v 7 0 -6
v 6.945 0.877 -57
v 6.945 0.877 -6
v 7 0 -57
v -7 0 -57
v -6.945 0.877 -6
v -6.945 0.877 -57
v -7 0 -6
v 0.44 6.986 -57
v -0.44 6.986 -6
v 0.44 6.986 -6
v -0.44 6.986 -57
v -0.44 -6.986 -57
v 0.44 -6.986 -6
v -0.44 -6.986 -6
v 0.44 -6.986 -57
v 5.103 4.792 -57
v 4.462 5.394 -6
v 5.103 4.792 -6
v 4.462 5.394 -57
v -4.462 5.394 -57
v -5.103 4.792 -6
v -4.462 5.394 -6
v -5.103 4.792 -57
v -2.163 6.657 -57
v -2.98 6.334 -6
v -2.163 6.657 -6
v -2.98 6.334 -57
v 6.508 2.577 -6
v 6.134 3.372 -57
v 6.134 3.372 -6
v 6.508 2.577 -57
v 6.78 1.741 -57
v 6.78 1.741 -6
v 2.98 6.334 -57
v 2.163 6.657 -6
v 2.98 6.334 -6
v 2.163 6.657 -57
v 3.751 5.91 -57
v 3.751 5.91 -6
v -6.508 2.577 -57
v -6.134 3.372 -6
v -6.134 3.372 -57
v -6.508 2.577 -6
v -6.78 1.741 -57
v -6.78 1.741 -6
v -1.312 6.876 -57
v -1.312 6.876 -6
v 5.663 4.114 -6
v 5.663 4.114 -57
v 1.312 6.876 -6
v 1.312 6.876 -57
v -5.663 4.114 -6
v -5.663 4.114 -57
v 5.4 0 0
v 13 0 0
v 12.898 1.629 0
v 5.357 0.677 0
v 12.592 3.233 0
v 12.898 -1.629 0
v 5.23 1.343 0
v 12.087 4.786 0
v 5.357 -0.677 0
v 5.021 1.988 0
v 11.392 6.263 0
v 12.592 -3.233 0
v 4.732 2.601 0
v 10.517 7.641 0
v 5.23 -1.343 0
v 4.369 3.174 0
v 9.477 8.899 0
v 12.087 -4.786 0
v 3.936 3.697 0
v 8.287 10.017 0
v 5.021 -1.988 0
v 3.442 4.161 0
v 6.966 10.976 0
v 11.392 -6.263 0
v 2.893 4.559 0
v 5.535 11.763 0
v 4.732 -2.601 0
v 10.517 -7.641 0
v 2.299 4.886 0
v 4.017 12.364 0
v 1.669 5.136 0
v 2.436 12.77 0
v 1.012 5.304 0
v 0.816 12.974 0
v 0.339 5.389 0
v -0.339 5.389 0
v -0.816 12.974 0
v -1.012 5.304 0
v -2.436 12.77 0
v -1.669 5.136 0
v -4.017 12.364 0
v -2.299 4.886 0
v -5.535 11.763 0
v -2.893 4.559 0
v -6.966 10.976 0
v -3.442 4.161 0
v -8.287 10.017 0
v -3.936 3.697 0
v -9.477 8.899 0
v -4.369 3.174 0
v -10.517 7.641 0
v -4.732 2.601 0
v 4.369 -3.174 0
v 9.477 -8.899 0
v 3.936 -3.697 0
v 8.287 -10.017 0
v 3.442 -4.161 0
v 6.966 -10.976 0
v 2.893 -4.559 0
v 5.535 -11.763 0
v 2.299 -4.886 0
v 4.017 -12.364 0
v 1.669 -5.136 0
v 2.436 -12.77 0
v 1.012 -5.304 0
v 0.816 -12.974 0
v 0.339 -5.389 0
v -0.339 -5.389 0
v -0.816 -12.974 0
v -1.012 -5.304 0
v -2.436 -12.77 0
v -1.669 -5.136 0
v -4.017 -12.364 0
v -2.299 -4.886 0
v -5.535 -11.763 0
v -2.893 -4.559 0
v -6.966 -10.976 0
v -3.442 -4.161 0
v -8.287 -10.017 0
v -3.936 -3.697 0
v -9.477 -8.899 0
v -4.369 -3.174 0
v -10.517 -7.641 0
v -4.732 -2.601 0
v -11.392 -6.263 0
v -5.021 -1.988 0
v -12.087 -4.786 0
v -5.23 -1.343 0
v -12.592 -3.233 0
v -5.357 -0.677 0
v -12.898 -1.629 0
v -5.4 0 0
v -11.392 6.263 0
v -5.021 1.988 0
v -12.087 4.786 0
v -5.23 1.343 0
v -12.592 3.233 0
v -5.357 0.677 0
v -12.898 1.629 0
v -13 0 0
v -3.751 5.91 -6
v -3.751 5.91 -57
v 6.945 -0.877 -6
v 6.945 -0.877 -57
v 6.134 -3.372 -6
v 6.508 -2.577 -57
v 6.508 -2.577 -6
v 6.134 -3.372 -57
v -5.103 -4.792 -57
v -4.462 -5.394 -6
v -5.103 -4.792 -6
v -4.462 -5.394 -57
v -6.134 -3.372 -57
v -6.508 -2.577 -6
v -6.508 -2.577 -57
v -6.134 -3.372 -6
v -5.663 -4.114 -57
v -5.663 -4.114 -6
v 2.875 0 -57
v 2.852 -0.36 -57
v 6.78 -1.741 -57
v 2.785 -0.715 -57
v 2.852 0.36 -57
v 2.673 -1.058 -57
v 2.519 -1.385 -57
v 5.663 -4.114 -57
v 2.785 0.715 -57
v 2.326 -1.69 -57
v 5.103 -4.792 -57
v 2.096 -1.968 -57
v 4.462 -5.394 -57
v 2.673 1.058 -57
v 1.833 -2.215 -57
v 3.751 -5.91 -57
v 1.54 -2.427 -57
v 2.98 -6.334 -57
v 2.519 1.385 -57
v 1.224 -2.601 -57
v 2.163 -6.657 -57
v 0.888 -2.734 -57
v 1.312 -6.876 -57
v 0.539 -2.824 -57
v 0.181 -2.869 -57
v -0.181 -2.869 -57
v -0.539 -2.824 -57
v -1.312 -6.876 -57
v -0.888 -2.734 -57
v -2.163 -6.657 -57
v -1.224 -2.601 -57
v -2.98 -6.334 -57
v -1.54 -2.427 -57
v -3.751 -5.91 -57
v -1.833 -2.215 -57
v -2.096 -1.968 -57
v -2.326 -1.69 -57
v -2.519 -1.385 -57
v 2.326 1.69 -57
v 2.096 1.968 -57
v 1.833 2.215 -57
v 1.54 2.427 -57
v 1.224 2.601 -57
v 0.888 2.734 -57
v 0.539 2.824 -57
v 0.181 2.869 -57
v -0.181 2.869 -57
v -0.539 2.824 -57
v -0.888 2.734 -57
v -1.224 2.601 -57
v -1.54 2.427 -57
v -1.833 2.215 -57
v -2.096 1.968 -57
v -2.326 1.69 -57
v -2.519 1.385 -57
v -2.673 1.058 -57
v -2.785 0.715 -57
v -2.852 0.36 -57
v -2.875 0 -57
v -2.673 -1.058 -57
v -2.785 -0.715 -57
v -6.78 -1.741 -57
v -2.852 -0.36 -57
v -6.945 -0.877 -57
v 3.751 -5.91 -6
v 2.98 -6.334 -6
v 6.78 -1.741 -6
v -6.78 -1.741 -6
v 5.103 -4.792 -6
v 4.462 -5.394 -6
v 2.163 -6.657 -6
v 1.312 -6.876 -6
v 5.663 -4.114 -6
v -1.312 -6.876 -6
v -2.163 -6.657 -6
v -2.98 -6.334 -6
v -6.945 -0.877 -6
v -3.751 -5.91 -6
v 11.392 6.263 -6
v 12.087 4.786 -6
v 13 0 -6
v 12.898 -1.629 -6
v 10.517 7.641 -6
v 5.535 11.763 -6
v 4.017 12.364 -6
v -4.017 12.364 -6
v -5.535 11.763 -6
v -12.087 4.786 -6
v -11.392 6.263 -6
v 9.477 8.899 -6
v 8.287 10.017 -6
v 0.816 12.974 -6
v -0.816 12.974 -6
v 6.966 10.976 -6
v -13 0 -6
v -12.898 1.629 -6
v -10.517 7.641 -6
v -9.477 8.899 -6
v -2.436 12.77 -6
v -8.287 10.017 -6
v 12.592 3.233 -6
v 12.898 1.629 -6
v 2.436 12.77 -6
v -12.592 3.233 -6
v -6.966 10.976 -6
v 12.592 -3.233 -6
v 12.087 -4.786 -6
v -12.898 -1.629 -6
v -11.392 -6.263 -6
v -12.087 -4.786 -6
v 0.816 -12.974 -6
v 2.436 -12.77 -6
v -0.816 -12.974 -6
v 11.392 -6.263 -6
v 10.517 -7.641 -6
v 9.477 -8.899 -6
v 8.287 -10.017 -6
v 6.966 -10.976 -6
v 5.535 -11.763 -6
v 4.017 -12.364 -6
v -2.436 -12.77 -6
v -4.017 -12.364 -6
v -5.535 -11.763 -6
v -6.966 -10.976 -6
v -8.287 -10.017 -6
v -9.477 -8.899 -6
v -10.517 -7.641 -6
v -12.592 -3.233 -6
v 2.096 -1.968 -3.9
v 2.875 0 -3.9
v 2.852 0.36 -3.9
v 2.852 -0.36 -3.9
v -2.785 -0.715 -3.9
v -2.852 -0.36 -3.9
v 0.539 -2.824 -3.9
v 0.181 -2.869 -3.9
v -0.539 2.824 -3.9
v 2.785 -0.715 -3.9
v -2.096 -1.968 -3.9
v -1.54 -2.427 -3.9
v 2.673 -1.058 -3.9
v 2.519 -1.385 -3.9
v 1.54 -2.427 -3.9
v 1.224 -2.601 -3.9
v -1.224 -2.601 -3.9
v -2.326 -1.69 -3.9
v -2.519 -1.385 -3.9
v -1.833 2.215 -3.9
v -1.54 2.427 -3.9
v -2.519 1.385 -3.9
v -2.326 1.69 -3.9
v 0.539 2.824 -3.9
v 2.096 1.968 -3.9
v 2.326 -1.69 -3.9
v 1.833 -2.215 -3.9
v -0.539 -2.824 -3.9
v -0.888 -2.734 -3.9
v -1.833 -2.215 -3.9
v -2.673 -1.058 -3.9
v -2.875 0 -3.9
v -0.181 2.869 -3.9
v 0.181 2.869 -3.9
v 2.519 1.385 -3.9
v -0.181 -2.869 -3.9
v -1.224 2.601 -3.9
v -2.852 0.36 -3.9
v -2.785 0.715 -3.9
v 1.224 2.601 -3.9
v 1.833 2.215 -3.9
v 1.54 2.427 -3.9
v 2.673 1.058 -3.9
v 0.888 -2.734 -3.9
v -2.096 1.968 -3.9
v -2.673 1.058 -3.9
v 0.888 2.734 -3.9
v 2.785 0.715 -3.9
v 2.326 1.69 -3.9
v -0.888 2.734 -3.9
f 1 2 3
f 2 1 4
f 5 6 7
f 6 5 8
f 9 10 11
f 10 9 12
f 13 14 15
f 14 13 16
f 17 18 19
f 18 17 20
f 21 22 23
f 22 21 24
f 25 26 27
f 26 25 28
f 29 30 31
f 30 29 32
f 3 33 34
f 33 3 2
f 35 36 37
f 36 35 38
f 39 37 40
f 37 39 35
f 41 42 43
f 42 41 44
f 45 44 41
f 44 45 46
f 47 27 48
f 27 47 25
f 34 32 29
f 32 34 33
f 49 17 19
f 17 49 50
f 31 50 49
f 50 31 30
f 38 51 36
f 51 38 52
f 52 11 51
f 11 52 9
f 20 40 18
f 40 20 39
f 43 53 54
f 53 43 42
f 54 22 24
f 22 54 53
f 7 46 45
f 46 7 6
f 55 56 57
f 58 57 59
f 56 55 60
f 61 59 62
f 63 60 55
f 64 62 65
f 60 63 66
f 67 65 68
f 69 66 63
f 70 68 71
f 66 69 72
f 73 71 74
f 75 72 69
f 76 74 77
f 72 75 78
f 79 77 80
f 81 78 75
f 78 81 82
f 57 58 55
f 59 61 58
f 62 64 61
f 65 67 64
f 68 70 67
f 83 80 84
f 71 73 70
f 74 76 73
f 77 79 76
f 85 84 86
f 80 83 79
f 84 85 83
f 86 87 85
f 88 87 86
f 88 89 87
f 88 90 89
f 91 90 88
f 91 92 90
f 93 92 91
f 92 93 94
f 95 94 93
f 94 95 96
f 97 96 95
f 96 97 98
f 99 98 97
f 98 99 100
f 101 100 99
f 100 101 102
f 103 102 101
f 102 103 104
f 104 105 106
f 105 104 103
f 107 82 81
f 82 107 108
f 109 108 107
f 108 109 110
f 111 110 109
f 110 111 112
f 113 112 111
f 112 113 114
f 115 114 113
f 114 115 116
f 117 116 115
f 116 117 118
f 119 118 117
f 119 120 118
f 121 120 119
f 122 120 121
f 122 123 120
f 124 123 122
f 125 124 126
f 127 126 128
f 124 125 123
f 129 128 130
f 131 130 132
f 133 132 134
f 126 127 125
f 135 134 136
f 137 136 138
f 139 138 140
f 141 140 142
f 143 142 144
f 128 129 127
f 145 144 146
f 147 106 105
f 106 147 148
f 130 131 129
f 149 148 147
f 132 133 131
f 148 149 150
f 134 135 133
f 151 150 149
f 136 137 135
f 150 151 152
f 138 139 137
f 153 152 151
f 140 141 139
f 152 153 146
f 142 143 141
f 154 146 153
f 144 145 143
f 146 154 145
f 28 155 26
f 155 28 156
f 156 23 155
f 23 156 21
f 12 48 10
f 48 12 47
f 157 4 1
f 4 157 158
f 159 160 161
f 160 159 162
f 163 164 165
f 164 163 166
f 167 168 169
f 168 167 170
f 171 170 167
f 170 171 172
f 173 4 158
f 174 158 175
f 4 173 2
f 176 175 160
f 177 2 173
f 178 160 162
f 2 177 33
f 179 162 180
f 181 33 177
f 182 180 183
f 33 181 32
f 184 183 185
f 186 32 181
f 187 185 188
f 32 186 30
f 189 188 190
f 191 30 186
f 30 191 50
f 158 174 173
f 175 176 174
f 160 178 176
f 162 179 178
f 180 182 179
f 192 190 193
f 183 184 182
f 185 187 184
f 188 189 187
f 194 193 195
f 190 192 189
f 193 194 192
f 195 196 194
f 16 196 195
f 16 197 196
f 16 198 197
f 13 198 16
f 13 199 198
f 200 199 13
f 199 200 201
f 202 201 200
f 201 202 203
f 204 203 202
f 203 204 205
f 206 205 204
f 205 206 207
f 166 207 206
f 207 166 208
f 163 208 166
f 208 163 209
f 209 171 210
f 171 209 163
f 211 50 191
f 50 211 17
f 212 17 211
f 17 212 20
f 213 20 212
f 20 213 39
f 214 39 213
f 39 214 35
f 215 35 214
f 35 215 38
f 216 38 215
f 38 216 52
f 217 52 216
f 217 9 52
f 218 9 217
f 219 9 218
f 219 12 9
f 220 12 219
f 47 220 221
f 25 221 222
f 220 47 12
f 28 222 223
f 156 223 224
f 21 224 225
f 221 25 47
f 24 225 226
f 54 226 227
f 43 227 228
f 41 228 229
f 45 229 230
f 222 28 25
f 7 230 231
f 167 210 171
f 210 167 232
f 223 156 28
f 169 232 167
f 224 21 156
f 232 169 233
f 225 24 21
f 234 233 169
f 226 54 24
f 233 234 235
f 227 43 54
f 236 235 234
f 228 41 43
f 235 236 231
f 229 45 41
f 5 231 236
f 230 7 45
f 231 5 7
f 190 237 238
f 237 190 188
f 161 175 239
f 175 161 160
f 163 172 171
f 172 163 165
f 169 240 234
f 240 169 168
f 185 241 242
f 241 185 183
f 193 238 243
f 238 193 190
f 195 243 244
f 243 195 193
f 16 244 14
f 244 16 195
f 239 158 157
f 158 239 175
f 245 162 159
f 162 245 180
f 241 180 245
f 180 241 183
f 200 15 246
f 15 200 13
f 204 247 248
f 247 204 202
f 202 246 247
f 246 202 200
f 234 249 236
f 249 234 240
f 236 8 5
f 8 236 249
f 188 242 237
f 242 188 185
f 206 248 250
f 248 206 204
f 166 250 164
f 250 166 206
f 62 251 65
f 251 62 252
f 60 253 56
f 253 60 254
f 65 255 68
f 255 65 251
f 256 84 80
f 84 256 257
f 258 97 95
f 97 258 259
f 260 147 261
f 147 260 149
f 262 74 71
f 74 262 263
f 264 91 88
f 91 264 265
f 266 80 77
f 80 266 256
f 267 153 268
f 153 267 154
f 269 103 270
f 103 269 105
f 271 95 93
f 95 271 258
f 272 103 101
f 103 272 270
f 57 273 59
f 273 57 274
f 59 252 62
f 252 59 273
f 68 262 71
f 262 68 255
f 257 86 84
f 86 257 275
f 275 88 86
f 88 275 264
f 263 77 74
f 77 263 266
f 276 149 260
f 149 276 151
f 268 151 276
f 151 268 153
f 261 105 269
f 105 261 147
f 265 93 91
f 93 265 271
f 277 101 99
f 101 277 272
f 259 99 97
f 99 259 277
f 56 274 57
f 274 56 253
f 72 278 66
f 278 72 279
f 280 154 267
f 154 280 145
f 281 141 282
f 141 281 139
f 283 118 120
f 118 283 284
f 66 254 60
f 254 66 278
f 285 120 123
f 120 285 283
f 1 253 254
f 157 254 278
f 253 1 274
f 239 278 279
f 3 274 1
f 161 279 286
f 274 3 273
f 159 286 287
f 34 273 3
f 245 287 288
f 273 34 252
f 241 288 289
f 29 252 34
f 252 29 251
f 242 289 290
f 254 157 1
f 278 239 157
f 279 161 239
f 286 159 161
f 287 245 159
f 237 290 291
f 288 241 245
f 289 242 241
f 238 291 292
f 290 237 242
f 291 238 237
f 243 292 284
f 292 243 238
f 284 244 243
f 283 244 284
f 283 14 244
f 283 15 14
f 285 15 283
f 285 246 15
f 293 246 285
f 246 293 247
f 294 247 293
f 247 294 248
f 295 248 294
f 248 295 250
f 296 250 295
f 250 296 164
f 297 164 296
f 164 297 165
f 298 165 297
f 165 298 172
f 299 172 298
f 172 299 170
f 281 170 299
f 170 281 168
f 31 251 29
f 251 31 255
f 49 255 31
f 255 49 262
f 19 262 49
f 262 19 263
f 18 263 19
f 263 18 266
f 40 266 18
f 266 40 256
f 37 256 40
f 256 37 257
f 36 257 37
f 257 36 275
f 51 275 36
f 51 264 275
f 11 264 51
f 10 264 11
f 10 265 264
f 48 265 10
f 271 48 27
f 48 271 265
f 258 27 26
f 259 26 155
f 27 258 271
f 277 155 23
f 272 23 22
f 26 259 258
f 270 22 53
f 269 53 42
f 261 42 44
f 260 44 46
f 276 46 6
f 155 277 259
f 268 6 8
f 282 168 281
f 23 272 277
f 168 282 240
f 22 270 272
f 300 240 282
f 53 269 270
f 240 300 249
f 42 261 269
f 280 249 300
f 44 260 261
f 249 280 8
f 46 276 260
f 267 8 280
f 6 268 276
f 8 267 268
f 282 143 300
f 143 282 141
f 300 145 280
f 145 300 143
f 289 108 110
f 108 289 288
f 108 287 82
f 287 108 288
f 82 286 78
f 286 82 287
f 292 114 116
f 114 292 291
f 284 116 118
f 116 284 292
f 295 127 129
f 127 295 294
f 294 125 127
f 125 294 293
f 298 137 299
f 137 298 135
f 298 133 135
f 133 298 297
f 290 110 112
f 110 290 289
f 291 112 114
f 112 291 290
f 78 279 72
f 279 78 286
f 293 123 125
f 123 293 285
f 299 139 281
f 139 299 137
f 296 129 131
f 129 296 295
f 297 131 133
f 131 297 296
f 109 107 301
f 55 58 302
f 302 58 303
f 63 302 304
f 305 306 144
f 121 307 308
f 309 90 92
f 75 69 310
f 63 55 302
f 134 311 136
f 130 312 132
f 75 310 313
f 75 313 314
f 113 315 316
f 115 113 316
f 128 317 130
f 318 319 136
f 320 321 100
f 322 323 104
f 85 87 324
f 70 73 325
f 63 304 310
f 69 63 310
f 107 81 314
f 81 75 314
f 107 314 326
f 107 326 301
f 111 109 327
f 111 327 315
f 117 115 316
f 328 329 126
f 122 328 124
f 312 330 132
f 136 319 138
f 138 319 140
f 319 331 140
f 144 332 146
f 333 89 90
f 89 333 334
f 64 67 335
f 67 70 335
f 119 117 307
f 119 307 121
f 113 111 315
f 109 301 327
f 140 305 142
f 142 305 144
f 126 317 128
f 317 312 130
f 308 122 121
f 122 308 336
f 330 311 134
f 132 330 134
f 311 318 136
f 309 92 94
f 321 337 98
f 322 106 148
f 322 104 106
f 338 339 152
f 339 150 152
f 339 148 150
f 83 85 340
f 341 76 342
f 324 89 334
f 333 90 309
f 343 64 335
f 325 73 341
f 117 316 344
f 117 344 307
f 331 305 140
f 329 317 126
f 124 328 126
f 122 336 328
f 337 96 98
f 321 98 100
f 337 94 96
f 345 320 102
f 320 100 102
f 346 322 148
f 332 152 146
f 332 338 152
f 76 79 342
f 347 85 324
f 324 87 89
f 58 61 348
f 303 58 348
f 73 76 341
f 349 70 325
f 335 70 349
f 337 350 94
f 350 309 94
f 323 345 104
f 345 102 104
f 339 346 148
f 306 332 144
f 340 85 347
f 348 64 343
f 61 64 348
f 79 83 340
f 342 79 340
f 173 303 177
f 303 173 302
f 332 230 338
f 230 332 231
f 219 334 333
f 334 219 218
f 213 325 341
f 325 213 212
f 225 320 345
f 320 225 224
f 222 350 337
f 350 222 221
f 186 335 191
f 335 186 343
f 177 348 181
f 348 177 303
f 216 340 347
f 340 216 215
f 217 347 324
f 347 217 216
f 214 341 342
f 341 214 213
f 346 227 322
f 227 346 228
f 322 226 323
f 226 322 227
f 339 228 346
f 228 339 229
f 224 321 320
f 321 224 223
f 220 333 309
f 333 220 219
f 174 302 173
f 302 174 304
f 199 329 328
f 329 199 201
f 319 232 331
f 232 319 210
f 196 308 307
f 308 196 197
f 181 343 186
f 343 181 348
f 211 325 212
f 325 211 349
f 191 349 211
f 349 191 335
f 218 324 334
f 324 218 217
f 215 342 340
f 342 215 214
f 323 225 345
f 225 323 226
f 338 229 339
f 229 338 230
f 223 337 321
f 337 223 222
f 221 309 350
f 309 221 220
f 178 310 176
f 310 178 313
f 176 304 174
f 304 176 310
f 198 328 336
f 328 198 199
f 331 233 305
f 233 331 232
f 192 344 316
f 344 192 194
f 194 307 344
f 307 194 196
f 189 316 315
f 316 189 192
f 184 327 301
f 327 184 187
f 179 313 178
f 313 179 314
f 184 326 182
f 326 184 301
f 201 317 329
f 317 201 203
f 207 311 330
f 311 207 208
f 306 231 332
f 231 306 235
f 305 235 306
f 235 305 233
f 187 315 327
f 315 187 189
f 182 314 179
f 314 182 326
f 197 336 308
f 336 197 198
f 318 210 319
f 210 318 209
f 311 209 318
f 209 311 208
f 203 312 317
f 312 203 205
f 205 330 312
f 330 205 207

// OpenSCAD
$fn = 50;


difference() {
	union() {
		translate(v = [0, 0, -57.0000000000]) {
			cylinder(h = 57, r = 7.0000000000);
		}
		translate(v = [0, 0, -6.0000000000]) {
			cylinder(h = 6, r = 13.0000000000);
		}
	}
	union() {
		translate(v = [0, 0, 0]) {
			rotate(a = [0, 0, 0]) {
				difference() {
					union() {
						#translate(v = [0, 0, -57.0000000000]) {
							cylinder(h = 57, r = 2.6000000000);
						}
						#translate(v = [0, 0, -3.9000000000]) {
							cylinder(h = 3.9000000000, r = 7.0000000000, r1 = 2.8750000000, r2 = 5.4000000000);
						}
						#translate(v = [0, 0, -57.0000000000]) {
							cylinder(h = 57, r = 2.8750000000);
						}
						#translate(v = [0, 0, -57.0000000000]) {
							cylinder(h = 57, r = 2.6000000000);
						}
					}
					union();
				}
			}
		}
	}
}
